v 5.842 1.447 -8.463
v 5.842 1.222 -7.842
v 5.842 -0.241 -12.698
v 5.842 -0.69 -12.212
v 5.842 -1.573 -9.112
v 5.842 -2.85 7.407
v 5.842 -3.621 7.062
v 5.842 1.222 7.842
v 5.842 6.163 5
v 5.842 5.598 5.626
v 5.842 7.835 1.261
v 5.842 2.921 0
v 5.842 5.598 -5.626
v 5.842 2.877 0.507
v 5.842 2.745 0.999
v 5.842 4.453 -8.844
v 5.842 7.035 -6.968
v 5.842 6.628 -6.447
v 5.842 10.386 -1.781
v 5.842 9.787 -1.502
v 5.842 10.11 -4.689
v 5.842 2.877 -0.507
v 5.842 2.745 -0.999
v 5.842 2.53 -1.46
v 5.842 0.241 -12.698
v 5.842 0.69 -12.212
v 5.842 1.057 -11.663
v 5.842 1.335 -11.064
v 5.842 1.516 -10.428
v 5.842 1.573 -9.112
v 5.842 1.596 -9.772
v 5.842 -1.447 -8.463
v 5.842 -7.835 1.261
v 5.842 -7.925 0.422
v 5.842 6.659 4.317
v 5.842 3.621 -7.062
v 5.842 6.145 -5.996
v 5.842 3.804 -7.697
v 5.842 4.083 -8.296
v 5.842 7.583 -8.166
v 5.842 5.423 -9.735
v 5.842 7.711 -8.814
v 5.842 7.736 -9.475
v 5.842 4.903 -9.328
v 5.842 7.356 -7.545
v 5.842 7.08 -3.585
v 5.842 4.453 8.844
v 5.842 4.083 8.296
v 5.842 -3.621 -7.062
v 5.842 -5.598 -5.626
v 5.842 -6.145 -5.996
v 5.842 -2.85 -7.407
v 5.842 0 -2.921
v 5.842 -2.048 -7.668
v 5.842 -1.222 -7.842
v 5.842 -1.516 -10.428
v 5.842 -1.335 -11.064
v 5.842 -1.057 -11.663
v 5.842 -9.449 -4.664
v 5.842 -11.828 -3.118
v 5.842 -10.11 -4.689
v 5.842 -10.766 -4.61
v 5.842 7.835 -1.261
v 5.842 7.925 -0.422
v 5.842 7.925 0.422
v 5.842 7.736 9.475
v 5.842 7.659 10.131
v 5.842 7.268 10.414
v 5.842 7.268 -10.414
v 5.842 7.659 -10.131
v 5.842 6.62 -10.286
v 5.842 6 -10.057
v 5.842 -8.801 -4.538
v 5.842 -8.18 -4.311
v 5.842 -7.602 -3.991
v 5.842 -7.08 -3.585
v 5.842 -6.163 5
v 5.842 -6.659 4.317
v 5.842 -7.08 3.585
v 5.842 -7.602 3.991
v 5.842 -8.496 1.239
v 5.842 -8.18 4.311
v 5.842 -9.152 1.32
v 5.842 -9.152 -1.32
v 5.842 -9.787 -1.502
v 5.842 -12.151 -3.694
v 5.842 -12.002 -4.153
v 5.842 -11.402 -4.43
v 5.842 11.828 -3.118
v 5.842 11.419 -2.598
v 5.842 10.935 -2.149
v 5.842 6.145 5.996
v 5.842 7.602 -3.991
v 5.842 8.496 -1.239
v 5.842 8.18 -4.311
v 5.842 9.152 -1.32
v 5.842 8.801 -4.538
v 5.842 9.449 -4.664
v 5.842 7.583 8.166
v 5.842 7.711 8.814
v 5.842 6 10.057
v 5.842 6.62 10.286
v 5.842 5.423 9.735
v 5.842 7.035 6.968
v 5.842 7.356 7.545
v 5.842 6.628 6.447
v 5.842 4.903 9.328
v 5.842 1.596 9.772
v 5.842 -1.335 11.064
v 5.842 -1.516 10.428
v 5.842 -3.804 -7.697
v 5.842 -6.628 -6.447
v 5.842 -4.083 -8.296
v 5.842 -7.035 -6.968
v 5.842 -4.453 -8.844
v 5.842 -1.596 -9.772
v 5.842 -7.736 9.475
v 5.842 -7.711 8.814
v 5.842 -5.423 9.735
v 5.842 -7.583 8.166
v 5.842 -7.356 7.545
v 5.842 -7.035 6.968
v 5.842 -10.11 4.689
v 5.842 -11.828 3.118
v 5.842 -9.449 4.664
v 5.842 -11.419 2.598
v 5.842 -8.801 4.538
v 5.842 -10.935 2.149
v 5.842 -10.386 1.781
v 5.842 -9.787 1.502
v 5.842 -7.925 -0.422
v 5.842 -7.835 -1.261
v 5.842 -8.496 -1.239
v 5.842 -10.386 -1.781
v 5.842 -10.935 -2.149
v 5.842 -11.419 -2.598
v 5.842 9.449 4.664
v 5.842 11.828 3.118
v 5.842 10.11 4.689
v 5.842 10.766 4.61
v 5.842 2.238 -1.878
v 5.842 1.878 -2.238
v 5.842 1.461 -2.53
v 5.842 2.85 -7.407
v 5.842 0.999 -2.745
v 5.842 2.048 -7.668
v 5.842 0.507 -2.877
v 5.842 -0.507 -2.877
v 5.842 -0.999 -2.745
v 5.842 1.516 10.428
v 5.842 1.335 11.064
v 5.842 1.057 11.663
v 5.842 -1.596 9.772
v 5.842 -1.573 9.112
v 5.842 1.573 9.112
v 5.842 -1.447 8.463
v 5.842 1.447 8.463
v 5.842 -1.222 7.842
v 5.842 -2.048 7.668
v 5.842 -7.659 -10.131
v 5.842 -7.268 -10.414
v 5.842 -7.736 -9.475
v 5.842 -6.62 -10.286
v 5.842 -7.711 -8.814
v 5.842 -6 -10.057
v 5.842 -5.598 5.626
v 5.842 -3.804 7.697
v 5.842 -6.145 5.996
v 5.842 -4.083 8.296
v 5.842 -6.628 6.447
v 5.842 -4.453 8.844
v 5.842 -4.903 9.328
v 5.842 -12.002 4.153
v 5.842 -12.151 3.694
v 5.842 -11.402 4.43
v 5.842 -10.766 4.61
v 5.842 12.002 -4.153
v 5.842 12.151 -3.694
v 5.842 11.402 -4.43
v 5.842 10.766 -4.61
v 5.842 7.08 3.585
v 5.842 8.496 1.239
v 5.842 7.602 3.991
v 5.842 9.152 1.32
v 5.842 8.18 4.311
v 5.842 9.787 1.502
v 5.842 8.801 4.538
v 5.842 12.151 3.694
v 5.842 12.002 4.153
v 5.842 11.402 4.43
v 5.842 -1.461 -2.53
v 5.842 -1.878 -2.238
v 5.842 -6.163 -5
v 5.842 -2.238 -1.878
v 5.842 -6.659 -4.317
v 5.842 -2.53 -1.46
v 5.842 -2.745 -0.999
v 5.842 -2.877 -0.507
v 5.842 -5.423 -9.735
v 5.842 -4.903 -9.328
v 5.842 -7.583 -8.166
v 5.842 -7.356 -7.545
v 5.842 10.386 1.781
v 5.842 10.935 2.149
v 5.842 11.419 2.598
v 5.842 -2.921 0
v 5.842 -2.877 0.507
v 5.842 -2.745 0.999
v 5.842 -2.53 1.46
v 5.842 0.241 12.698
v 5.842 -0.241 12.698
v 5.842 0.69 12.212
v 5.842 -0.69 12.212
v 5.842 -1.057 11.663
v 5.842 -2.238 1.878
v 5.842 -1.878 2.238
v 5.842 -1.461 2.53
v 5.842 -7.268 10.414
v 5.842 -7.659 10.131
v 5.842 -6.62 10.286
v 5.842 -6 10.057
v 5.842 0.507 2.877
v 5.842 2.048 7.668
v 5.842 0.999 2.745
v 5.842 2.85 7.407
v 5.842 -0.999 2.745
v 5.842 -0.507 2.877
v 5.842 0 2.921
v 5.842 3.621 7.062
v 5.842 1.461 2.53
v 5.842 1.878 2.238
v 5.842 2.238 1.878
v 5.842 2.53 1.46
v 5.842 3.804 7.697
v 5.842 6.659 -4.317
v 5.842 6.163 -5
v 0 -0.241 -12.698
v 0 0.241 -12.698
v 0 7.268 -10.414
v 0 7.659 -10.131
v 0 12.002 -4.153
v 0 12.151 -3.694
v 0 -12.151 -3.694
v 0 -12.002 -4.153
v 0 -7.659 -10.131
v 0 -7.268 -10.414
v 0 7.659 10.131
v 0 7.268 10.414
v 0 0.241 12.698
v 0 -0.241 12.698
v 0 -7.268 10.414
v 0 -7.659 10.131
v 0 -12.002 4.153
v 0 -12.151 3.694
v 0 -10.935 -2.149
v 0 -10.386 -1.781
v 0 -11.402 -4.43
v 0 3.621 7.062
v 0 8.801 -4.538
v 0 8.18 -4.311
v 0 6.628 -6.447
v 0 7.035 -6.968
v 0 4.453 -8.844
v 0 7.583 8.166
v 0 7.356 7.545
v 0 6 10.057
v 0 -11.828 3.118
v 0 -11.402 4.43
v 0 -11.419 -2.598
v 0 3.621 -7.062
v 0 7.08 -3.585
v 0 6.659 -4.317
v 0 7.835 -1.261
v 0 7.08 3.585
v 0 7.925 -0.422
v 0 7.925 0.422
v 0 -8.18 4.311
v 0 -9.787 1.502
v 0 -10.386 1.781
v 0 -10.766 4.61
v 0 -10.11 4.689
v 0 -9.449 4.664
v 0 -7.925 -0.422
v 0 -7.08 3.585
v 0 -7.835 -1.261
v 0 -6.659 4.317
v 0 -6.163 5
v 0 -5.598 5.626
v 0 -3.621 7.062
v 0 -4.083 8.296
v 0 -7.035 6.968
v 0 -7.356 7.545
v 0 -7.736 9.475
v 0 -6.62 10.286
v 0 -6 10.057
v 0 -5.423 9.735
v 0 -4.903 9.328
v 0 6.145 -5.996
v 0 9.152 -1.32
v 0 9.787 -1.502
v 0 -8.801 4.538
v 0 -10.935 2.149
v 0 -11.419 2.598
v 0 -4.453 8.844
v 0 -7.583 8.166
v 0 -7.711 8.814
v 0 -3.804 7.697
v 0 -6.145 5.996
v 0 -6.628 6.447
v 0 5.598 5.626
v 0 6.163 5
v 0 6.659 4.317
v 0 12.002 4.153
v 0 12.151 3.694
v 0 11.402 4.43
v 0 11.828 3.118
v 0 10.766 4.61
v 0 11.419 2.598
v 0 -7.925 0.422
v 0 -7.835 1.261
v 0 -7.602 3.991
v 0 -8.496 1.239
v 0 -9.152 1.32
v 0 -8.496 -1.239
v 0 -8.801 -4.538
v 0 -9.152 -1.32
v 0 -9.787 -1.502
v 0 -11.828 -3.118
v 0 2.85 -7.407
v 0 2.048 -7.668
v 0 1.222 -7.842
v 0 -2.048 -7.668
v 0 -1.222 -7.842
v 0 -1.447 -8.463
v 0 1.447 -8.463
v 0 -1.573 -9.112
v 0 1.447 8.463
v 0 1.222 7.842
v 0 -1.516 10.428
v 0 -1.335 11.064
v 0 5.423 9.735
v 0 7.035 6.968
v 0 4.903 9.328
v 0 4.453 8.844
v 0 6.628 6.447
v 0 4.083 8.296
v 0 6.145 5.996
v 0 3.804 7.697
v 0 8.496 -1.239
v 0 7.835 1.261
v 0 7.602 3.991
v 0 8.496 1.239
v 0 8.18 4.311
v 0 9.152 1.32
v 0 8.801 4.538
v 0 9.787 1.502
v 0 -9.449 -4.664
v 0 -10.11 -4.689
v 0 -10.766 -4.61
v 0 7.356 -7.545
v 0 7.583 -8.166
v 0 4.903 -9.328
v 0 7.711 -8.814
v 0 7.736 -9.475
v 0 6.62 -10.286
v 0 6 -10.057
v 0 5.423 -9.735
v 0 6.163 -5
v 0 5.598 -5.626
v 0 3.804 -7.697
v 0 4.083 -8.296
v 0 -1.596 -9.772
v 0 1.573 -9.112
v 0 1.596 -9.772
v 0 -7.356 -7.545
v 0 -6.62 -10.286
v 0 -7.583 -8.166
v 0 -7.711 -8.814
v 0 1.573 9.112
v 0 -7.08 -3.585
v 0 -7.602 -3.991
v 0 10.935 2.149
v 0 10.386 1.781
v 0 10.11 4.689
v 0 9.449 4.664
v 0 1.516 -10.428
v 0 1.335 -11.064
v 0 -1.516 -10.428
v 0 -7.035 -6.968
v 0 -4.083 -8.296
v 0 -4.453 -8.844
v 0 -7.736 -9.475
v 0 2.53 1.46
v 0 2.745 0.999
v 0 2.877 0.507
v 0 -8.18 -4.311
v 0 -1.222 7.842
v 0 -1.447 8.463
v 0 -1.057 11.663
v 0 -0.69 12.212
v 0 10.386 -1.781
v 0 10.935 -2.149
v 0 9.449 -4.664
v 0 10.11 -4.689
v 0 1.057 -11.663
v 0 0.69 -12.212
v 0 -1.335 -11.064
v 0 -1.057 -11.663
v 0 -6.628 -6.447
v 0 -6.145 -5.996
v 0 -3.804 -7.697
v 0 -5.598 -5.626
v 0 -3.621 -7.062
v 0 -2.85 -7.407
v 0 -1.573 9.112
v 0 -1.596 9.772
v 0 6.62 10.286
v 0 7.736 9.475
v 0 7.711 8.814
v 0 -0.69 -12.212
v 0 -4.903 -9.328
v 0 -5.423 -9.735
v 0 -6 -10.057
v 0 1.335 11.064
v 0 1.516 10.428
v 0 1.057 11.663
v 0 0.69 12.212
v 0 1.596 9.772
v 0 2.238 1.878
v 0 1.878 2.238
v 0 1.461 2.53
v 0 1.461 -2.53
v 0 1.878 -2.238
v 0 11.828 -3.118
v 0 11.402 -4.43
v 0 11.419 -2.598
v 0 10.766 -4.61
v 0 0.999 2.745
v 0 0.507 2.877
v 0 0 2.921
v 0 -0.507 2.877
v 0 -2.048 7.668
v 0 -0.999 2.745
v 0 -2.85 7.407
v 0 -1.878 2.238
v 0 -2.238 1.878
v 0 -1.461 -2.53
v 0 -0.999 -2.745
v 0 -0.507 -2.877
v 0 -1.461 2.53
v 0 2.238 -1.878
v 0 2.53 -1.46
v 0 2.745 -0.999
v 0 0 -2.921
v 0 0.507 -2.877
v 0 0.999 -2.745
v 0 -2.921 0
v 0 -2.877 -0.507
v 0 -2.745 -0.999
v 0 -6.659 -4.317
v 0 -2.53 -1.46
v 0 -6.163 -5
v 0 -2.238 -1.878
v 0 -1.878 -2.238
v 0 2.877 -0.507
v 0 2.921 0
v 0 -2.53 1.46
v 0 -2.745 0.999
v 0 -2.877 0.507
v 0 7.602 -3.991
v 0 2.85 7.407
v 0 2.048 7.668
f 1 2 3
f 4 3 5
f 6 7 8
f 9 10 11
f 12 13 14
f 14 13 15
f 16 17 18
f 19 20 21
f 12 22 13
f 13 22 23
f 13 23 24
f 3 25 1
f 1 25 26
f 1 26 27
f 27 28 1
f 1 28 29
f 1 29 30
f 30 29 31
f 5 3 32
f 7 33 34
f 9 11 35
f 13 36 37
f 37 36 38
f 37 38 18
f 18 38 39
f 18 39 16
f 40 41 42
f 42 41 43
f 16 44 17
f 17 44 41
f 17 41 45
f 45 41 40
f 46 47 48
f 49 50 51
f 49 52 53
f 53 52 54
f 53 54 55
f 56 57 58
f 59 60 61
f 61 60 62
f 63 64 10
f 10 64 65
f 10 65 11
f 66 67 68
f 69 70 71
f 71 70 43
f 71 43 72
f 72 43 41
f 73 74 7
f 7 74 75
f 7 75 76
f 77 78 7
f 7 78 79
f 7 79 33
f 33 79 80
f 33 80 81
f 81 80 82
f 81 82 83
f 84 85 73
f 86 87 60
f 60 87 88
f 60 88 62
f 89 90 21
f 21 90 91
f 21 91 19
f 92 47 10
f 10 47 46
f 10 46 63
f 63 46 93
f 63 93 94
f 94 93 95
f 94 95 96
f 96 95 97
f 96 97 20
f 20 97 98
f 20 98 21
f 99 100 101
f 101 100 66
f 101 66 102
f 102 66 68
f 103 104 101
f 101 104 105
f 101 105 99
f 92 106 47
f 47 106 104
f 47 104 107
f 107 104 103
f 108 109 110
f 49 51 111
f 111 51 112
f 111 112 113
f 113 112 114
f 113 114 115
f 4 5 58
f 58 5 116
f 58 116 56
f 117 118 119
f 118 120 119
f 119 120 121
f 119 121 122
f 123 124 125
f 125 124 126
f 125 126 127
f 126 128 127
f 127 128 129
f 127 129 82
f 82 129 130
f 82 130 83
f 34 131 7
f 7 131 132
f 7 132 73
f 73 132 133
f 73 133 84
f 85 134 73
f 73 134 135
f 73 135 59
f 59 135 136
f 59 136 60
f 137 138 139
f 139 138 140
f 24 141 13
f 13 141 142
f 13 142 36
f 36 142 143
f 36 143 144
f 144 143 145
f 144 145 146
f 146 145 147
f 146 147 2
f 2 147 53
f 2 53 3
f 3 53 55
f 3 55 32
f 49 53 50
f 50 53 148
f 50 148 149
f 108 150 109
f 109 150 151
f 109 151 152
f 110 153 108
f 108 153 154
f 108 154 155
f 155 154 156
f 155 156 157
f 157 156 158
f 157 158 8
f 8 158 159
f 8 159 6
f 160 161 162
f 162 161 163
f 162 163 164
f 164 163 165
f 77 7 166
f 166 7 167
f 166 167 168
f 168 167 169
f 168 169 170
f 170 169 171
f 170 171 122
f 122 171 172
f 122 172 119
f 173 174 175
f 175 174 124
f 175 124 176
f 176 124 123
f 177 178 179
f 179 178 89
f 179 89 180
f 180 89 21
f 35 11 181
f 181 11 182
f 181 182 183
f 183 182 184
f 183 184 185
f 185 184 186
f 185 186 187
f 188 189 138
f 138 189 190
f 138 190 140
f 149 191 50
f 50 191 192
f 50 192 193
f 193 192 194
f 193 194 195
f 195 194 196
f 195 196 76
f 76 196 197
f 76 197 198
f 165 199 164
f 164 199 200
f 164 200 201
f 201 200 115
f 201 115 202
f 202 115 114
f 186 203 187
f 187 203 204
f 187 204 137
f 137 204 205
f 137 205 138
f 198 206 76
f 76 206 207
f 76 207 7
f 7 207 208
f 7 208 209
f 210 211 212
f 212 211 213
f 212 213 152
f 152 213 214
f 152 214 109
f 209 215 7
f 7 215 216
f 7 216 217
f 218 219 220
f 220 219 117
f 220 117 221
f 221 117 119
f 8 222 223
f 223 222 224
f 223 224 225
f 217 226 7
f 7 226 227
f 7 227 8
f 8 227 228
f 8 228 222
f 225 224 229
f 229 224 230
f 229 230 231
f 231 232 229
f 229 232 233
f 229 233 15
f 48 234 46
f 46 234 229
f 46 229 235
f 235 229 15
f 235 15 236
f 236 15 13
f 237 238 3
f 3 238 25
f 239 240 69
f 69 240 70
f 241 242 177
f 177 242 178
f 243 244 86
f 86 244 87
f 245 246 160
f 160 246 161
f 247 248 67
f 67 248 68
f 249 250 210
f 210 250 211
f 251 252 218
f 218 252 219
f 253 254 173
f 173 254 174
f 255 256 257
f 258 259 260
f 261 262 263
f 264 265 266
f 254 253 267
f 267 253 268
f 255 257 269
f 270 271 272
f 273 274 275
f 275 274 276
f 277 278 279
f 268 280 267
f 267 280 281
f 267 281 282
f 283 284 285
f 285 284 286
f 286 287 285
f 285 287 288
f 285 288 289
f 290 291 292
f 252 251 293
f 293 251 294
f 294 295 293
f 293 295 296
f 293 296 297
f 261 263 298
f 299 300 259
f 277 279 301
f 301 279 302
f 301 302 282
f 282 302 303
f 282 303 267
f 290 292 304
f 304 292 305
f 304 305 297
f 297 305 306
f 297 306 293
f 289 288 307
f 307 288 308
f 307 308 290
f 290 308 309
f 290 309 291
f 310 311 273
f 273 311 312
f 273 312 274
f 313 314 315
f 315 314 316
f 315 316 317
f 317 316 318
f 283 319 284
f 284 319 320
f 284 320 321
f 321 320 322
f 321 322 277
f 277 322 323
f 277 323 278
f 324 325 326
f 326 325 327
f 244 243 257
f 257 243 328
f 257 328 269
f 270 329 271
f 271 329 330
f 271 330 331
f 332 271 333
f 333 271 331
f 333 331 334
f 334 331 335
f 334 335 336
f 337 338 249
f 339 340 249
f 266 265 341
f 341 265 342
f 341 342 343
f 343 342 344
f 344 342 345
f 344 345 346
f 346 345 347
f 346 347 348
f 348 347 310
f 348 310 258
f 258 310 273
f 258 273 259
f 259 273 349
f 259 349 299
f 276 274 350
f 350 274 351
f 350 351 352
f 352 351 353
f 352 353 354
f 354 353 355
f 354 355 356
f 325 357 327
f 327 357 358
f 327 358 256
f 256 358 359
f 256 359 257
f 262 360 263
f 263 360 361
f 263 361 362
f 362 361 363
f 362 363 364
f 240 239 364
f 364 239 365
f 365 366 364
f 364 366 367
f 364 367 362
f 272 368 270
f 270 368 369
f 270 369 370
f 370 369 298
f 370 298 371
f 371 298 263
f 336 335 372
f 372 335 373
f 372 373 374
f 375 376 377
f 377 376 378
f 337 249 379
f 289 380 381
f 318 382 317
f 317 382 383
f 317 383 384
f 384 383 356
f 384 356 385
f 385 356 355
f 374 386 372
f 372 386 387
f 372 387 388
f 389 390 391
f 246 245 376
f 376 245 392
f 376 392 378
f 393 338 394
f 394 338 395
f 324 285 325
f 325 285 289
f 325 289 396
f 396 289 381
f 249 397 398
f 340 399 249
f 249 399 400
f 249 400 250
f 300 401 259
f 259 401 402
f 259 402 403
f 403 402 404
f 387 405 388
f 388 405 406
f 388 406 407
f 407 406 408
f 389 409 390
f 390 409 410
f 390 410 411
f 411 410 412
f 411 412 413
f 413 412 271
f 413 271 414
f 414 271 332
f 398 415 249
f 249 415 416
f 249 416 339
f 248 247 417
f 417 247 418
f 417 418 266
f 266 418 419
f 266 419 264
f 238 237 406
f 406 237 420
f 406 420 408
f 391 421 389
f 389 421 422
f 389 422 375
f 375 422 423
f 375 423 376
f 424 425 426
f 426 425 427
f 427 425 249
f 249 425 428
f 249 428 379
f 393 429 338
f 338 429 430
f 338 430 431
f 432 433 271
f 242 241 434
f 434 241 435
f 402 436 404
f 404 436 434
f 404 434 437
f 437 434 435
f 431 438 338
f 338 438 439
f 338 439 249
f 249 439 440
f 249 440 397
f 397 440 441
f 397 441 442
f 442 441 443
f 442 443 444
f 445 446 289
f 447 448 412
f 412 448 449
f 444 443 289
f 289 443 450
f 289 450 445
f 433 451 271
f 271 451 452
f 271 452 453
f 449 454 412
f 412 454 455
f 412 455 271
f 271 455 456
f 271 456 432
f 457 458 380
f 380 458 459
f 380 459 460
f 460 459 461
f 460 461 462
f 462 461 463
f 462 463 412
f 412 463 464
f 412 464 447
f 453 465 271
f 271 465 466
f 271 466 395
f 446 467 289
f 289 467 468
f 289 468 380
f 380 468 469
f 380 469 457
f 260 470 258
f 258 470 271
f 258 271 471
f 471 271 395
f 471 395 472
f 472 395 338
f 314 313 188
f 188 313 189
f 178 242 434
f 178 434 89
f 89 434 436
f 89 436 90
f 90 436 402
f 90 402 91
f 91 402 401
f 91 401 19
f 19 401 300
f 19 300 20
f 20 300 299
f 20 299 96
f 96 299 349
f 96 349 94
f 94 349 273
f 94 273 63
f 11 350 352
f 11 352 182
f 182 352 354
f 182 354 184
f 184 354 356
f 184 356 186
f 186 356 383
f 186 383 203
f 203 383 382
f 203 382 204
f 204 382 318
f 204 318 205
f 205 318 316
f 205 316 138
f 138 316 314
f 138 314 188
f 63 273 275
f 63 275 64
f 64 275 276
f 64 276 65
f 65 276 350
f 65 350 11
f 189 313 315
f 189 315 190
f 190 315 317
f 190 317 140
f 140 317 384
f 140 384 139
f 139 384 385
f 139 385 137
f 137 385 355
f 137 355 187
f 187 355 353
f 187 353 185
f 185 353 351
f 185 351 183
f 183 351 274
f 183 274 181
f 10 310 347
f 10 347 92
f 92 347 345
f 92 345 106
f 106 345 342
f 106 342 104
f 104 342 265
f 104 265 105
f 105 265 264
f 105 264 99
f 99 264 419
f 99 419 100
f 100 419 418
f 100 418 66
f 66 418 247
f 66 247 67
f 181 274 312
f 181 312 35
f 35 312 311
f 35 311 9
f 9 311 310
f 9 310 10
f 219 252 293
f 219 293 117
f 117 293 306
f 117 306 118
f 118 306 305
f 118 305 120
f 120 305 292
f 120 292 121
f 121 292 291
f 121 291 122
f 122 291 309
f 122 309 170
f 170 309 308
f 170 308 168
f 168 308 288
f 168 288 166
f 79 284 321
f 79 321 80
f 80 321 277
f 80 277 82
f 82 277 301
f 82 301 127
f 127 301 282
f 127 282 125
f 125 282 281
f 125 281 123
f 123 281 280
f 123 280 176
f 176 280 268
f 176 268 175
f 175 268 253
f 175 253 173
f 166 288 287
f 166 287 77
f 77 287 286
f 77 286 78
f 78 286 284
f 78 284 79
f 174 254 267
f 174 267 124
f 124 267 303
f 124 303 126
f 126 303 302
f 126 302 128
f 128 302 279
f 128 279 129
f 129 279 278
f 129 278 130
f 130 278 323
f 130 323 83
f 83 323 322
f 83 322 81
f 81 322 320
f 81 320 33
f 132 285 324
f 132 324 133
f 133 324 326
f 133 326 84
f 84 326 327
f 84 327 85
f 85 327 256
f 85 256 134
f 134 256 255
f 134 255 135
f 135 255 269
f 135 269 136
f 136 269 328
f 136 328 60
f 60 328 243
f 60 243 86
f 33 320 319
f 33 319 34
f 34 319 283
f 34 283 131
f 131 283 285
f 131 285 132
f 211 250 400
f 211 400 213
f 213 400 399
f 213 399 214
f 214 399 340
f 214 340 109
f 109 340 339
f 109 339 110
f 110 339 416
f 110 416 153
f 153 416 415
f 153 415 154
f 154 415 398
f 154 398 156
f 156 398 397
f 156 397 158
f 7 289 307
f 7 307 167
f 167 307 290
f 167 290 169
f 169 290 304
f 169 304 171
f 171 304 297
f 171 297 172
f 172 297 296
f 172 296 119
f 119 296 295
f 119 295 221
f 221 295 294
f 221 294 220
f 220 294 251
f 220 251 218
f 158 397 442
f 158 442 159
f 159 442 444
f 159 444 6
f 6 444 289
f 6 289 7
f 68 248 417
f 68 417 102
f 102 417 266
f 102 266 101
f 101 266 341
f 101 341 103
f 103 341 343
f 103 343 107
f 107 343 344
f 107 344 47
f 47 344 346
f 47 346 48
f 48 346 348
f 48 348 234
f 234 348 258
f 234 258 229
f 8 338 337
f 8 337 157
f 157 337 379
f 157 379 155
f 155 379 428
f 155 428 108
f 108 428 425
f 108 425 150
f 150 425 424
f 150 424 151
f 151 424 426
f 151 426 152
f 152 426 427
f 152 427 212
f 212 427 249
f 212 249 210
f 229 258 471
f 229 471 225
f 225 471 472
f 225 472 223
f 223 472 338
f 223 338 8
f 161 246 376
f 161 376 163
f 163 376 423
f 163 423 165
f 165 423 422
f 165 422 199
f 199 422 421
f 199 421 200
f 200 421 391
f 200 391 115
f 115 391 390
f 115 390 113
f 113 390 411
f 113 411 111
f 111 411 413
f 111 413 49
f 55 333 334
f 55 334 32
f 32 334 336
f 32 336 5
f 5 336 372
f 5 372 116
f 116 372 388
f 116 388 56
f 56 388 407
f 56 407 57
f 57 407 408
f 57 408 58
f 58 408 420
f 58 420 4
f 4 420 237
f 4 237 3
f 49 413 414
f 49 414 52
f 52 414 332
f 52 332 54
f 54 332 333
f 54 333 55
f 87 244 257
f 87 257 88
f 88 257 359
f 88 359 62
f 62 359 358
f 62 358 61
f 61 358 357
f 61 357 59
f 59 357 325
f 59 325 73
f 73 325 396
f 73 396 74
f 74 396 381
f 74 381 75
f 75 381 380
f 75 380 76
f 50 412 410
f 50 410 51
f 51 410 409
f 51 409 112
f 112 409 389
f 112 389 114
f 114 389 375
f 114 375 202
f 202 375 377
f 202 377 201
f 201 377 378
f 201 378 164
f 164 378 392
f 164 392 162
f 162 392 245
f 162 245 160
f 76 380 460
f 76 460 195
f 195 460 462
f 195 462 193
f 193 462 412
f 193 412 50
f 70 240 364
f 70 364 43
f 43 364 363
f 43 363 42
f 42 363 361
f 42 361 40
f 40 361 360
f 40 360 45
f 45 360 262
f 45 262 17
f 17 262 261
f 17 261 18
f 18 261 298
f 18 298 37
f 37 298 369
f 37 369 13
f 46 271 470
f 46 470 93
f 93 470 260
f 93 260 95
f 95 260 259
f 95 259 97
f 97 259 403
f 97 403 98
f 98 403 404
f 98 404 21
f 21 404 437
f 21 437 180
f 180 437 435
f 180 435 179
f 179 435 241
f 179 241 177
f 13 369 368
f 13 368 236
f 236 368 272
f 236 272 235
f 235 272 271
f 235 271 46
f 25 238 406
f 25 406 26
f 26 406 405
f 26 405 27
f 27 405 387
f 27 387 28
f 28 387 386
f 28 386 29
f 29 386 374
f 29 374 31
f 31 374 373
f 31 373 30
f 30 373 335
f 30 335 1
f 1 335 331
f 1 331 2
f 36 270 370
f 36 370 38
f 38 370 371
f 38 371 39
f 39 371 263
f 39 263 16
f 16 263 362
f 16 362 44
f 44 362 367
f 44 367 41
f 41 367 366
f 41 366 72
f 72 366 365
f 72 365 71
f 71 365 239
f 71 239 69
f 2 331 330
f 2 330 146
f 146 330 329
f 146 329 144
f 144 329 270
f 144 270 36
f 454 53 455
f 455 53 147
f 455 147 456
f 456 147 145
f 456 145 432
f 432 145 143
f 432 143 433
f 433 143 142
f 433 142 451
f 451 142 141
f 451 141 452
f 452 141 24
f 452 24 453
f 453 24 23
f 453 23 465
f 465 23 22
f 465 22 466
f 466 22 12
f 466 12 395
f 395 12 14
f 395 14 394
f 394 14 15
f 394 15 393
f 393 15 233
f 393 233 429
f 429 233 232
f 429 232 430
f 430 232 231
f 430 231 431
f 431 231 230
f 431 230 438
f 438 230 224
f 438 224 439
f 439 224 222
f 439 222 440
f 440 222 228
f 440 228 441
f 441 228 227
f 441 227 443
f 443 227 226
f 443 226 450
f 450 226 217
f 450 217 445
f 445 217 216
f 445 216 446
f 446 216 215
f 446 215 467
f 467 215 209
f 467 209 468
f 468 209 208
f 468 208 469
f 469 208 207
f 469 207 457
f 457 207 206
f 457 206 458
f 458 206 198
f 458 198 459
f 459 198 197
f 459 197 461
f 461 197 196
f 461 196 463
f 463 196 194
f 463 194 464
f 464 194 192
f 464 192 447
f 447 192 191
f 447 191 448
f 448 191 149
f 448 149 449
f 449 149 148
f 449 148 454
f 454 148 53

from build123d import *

# Parameters (mm, degrees)
BASPROSKE_W         = 5.842
BASPROSKE_H         = 12.7
TOOTHCUT_DEPTH      = 19.886740428
TEETHCUTS_COUNT     = 10
TEETHCUTS_ANGLE     = 324
BORSKE_R            = 3.175
BORE_DEPTH          = 50.8000508
SKETCH1_R           = 3.175
SKETCH1_R_2         = 2.921
BOSS_EXTRUDE1_DEPTH = 5.842


with BuildPart() as part:
    # BasProSke → Base-Revolve (revolve)
    with BuildSketch(Plane(origin=(0, 0, 0), x_dir=(1, 0, 0), z_dir=(0, 1, 0)), mode=Mode.PRIVATE) as base_revolve_sk:
        with Locations((2.921, 6.35)):
            Rectangle(BASPROSKE_W, BASPROSKE_H)
    revolve(base_revolve_sk.sketch.rotate(Axis((-10, 0, 0), (1, 0, 0)), 180), axis=Axis((-10, 0, 0), (1, 0, 0)))

    # TooCutSke → ToothCut (cut, through all)
    with BuildSketch(Plane(origin=(0, 0, 0), x_dir=(0, 0, -1), z_dir=(1, 0, 0))):
        with BuildLine():
            ThreePointArc((1.261053733, 7.835399804), (0, 7.93623), (-1.261053733, 7.835399804))
            ThreePointArc((-1.261053733, 7.835399804), (-1.789991322, 10.402889218), (-3.729263267, 12.166692264))
            ThreePointArc((-3.729263267, 12.166692264), (0, 12.7254), (3.729263267, 12.166692264))
            ThreePointArc((3.729263267, 12.166692264), (1.789991322, 10.402889218), (1.261053733, 7.835399804))
        make_face()
    toothcut = extrude(amount=TOOTHCUT_DEPTH, mode=Mode.SUBTRACT)

    # TeethCuts: ToothCut ×10 about axis
    teethcuts_axis = Axis((-10, 0, 0), (1, 0, 0))
    for i in range(1, TEETHCUTS_COUNT):
        add(toothcut.rotate(teethcuts_axis, i * TEETHCUTS_ANGLE / (TEETHCUTS_COUNT - 1)), mode=Mode.SUBTRACT)

    # BorSke → Bore (cut, symmetric)
    with BuildSketch(Plane(origin=(0, 0, 0), x_dir=(0, 0, -1), z_dir=(1, 0, 0))):
        with Locations(Location((0, 0, 0), (0, 0, 180))):
            Circle(BORSKE_R)
    extrude(amount=BORE_DEPTH, both=True, mode=Mode.SUBTRACT)

    # Sketch1 → Boss-Extrude1 (add)
    with BuildSketch(Plane(origin=(5.842, 0, 0), x_dir=(0, 0, -1), z_dir=(1, 0, 0))):
        Circle(SKETCH1_R)
        Circle(SKETCH1_R_2, mode=Mode.SUBTRACT)
    extrude(amount=-BOSS_EXTRUDE1_DEPTH)


solid = part.part
